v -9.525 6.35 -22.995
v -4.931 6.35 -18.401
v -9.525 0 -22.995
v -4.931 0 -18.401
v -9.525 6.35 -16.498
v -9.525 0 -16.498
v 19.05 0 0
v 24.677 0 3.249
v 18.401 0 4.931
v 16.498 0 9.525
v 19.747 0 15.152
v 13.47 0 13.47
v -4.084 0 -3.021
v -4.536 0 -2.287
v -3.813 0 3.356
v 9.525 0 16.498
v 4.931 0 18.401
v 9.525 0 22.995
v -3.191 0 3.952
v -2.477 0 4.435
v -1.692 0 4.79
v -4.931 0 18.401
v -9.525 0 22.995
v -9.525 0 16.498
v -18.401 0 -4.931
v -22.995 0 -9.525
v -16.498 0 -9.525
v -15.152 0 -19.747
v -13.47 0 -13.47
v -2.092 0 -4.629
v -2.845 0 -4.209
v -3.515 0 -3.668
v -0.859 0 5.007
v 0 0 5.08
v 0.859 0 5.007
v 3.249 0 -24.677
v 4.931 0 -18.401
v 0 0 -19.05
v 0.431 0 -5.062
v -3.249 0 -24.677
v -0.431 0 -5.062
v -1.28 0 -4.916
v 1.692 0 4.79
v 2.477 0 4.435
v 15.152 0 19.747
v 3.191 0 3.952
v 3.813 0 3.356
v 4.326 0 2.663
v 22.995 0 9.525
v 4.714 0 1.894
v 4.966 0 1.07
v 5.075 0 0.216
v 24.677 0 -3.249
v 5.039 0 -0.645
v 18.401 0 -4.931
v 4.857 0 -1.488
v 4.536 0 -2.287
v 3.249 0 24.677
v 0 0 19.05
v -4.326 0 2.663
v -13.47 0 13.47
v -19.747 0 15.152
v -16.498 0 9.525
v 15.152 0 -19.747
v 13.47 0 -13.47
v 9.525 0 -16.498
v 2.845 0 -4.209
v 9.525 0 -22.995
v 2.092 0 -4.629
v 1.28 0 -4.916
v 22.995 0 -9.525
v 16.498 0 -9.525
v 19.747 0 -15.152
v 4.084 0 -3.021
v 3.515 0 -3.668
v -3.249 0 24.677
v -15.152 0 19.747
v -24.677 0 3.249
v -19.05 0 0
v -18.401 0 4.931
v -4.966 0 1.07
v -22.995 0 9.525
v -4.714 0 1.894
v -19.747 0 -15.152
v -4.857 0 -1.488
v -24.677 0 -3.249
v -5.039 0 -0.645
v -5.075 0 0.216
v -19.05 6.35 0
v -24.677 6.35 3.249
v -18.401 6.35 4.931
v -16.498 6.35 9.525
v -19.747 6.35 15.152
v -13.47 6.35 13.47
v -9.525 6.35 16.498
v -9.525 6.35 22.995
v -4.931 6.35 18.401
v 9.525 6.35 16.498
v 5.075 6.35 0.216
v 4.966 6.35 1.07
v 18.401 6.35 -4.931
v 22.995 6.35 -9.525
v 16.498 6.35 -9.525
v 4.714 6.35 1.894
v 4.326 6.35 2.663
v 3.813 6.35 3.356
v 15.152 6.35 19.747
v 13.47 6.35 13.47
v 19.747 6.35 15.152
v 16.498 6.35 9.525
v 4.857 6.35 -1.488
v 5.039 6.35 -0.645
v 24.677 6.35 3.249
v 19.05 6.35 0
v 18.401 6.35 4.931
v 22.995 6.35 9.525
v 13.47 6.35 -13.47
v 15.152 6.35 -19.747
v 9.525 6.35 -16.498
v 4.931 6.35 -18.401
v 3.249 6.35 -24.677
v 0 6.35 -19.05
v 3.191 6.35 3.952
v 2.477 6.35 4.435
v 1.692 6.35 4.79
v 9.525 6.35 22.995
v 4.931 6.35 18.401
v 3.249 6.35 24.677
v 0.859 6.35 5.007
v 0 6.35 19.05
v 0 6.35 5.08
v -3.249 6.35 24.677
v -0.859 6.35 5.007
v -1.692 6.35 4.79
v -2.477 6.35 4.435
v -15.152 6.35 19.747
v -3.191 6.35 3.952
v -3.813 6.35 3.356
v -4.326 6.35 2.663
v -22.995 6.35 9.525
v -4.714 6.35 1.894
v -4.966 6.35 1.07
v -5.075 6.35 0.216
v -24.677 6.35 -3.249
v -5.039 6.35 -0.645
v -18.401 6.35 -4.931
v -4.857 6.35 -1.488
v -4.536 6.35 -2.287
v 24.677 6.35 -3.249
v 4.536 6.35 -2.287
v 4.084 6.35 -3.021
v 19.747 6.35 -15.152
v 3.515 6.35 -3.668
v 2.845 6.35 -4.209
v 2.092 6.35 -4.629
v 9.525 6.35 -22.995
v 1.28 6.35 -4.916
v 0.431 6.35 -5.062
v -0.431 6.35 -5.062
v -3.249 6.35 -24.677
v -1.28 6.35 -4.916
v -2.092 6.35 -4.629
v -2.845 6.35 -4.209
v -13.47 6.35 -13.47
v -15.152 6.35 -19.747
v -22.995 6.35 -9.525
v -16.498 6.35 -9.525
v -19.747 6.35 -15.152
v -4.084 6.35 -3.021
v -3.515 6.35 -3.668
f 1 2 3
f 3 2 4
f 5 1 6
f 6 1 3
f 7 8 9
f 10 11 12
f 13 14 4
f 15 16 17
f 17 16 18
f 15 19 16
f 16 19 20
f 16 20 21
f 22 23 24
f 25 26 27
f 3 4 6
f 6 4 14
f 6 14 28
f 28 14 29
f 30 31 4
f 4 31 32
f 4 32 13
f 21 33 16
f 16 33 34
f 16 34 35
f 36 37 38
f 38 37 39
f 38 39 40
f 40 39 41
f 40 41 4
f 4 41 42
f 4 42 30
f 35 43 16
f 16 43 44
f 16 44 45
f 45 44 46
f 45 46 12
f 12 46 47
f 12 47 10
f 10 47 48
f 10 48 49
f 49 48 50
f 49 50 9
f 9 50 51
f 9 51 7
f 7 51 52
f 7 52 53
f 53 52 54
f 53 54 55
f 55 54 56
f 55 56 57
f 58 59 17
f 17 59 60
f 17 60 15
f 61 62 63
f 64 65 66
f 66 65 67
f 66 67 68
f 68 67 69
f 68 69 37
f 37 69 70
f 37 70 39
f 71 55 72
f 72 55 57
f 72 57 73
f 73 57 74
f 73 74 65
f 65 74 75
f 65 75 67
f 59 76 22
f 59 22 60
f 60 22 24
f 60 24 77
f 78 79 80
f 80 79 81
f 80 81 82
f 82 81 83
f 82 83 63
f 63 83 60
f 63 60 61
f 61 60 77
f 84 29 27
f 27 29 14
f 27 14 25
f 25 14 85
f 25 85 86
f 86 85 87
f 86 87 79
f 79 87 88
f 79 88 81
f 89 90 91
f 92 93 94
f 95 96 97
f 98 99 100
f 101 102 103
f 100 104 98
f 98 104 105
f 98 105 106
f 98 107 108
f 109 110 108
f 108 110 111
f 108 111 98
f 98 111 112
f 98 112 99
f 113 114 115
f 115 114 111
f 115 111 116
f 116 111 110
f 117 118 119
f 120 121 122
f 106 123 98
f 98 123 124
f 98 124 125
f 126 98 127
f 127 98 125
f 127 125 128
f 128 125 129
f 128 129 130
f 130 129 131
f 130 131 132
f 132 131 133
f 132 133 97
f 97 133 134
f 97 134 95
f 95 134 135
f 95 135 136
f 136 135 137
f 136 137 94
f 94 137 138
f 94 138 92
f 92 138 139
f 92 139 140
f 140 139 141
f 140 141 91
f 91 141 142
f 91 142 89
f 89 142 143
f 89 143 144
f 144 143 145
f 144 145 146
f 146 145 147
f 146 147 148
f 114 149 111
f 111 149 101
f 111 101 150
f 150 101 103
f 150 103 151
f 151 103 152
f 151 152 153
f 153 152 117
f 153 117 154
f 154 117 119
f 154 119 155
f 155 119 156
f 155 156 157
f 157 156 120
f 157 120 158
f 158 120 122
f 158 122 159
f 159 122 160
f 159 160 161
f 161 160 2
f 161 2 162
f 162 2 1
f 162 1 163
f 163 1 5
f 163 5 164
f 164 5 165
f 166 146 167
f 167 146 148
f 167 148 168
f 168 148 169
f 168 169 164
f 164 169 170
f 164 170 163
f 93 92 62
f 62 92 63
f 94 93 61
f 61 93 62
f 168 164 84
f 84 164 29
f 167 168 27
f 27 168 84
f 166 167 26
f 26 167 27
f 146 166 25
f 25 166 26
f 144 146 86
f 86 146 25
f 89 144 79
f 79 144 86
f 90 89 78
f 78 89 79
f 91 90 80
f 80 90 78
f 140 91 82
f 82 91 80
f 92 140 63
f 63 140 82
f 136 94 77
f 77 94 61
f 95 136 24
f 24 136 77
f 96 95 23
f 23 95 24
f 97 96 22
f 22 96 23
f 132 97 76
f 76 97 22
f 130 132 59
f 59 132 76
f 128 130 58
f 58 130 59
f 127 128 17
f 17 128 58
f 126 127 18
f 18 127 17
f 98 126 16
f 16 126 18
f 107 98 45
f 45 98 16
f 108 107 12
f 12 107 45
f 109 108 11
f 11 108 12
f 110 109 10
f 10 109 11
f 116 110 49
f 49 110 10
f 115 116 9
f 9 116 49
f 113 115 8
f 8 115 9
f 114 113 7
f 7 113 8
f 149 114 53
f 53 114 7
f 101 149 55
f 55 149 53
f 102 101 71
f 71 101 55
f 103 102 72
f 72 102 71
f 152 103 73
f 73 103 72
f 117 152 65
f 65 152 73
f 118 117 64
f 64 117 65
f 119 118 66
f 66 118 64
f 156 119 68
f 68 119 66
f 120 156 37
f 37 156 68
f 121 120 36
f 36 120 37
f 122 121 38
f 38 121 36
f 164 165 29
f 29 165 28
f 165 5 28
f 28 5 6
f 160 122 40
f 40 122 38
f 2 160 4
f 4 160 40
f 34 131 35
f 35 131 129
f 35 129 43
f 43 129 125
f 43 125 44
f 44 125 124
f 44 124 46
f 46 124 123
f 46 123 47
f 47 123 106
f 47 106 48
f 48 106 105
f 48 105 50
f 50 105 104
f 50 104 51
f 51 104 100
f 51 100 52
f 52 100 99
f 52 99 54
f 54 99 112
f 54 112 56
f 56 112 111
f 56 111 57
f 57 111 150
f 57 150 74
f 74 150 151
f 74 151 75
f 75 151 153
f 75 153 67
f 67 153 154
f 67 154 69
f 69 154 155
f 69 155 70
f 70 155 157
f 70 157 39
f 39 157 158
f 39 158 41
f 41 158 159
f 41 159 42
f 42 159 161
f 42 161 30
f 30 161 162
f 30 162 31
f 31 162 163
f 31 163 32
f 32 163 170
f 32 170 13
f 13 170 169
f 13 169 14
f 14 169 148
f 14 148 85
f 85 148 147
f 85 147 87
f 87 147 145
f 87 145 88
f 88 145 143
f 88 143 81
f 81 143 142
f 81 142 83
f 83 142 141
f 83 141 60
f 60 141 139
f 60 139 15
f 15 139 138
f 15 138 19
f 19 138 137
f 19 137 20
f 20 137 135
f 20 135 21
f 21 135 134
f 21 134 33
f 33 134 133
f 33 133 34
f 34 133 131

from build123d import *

# Parameters (mm, degrees)
BOSS_EXTRUDE1_DEPTH = 6.35
SKETCH3_R           = 5.08
CUT_EXTRUDE3_DEPTH  = 6.35


with BuildPart() as part:
    # Sketch2 → Boss-Extrude1 (new body)
    with BuildSketch(Plane(origin=(0, 0, 0), x_dir=(1, 0, 0), z_dir=(0, 1, 0))):
        Polygon((-9.525, 16.497783942), (-9.525, 22.995384182), (-4.930502809, 18.400886991), (-3.24880012, 24.677086871), (0, 19.05), (3.24880012, 24.677086871), (4.930502809, 18.400886991), (9.525, 22.995384182), (9.525, 16.497783942), (15.152086871, 19.746584062), (13.470384182, 13.470384182), (19.746584062, 15.152086871), (16.497783942, 9.525), (22.995384182, 9.525), (18.400886991, 4.930502809), (24.677086871, 3.24880012), (19.05, 0), (24.677086871, -3.24880012), (18.400886991, -4.930502809), (22.995384182, -9.525), (16.497783942, -9.525), (19.746584062, -15.152086871), (13.470384182, -13.470384182), (15.152086871, -19.746584062), (9.525, -16.497783942), (9.525, -22.995384182), (4.930502809, -18.400886991), (3.24880012, -24.677086871), (0, -19.05), (-3.24880012, -24.677086871), (-4.930502809, -18.400886991), (-9.525, -22.995384182), (-9.525, -16.497783942), (-15.152086871, -19.746584062), (-13.470384182, -13.470384182), (-19.746584062, -15.152086871), (-16.497783942, -9.525), (-22.995384182, -9.525), (-18.400886991, -4.930502809), (-24.677086871, -3.24880012), (-19.05, 0), (-24.677086871, 3.24880012), (-18.400886991, 4.930502809), (-22.995384182, 9.525), (-16.497783942, 9.525), (-19.746584062, 15.152086871), (-13.470384182, 13.470384182), (-15.152086871, 19.746584062), align=None)
    extrude(amount=BOSS_EXTRUDE1_DEPTH)

    # Sketch3 → Cut-Extrude3 (cut)
    with BuildSketch(Plane(origin=(0, 6.35, 0), x_dir=(1, 0, 0), z_dir=(0, 1, 0))):
        with Locations(Location((0, 0, 0), (0, 0, 270))):
            Circle(SKETCH3_R)
    extrude(amount=-CUT_EXTRUDE3_DEPTH, mode=Mode.SUBTRACT)


solid = part.part
